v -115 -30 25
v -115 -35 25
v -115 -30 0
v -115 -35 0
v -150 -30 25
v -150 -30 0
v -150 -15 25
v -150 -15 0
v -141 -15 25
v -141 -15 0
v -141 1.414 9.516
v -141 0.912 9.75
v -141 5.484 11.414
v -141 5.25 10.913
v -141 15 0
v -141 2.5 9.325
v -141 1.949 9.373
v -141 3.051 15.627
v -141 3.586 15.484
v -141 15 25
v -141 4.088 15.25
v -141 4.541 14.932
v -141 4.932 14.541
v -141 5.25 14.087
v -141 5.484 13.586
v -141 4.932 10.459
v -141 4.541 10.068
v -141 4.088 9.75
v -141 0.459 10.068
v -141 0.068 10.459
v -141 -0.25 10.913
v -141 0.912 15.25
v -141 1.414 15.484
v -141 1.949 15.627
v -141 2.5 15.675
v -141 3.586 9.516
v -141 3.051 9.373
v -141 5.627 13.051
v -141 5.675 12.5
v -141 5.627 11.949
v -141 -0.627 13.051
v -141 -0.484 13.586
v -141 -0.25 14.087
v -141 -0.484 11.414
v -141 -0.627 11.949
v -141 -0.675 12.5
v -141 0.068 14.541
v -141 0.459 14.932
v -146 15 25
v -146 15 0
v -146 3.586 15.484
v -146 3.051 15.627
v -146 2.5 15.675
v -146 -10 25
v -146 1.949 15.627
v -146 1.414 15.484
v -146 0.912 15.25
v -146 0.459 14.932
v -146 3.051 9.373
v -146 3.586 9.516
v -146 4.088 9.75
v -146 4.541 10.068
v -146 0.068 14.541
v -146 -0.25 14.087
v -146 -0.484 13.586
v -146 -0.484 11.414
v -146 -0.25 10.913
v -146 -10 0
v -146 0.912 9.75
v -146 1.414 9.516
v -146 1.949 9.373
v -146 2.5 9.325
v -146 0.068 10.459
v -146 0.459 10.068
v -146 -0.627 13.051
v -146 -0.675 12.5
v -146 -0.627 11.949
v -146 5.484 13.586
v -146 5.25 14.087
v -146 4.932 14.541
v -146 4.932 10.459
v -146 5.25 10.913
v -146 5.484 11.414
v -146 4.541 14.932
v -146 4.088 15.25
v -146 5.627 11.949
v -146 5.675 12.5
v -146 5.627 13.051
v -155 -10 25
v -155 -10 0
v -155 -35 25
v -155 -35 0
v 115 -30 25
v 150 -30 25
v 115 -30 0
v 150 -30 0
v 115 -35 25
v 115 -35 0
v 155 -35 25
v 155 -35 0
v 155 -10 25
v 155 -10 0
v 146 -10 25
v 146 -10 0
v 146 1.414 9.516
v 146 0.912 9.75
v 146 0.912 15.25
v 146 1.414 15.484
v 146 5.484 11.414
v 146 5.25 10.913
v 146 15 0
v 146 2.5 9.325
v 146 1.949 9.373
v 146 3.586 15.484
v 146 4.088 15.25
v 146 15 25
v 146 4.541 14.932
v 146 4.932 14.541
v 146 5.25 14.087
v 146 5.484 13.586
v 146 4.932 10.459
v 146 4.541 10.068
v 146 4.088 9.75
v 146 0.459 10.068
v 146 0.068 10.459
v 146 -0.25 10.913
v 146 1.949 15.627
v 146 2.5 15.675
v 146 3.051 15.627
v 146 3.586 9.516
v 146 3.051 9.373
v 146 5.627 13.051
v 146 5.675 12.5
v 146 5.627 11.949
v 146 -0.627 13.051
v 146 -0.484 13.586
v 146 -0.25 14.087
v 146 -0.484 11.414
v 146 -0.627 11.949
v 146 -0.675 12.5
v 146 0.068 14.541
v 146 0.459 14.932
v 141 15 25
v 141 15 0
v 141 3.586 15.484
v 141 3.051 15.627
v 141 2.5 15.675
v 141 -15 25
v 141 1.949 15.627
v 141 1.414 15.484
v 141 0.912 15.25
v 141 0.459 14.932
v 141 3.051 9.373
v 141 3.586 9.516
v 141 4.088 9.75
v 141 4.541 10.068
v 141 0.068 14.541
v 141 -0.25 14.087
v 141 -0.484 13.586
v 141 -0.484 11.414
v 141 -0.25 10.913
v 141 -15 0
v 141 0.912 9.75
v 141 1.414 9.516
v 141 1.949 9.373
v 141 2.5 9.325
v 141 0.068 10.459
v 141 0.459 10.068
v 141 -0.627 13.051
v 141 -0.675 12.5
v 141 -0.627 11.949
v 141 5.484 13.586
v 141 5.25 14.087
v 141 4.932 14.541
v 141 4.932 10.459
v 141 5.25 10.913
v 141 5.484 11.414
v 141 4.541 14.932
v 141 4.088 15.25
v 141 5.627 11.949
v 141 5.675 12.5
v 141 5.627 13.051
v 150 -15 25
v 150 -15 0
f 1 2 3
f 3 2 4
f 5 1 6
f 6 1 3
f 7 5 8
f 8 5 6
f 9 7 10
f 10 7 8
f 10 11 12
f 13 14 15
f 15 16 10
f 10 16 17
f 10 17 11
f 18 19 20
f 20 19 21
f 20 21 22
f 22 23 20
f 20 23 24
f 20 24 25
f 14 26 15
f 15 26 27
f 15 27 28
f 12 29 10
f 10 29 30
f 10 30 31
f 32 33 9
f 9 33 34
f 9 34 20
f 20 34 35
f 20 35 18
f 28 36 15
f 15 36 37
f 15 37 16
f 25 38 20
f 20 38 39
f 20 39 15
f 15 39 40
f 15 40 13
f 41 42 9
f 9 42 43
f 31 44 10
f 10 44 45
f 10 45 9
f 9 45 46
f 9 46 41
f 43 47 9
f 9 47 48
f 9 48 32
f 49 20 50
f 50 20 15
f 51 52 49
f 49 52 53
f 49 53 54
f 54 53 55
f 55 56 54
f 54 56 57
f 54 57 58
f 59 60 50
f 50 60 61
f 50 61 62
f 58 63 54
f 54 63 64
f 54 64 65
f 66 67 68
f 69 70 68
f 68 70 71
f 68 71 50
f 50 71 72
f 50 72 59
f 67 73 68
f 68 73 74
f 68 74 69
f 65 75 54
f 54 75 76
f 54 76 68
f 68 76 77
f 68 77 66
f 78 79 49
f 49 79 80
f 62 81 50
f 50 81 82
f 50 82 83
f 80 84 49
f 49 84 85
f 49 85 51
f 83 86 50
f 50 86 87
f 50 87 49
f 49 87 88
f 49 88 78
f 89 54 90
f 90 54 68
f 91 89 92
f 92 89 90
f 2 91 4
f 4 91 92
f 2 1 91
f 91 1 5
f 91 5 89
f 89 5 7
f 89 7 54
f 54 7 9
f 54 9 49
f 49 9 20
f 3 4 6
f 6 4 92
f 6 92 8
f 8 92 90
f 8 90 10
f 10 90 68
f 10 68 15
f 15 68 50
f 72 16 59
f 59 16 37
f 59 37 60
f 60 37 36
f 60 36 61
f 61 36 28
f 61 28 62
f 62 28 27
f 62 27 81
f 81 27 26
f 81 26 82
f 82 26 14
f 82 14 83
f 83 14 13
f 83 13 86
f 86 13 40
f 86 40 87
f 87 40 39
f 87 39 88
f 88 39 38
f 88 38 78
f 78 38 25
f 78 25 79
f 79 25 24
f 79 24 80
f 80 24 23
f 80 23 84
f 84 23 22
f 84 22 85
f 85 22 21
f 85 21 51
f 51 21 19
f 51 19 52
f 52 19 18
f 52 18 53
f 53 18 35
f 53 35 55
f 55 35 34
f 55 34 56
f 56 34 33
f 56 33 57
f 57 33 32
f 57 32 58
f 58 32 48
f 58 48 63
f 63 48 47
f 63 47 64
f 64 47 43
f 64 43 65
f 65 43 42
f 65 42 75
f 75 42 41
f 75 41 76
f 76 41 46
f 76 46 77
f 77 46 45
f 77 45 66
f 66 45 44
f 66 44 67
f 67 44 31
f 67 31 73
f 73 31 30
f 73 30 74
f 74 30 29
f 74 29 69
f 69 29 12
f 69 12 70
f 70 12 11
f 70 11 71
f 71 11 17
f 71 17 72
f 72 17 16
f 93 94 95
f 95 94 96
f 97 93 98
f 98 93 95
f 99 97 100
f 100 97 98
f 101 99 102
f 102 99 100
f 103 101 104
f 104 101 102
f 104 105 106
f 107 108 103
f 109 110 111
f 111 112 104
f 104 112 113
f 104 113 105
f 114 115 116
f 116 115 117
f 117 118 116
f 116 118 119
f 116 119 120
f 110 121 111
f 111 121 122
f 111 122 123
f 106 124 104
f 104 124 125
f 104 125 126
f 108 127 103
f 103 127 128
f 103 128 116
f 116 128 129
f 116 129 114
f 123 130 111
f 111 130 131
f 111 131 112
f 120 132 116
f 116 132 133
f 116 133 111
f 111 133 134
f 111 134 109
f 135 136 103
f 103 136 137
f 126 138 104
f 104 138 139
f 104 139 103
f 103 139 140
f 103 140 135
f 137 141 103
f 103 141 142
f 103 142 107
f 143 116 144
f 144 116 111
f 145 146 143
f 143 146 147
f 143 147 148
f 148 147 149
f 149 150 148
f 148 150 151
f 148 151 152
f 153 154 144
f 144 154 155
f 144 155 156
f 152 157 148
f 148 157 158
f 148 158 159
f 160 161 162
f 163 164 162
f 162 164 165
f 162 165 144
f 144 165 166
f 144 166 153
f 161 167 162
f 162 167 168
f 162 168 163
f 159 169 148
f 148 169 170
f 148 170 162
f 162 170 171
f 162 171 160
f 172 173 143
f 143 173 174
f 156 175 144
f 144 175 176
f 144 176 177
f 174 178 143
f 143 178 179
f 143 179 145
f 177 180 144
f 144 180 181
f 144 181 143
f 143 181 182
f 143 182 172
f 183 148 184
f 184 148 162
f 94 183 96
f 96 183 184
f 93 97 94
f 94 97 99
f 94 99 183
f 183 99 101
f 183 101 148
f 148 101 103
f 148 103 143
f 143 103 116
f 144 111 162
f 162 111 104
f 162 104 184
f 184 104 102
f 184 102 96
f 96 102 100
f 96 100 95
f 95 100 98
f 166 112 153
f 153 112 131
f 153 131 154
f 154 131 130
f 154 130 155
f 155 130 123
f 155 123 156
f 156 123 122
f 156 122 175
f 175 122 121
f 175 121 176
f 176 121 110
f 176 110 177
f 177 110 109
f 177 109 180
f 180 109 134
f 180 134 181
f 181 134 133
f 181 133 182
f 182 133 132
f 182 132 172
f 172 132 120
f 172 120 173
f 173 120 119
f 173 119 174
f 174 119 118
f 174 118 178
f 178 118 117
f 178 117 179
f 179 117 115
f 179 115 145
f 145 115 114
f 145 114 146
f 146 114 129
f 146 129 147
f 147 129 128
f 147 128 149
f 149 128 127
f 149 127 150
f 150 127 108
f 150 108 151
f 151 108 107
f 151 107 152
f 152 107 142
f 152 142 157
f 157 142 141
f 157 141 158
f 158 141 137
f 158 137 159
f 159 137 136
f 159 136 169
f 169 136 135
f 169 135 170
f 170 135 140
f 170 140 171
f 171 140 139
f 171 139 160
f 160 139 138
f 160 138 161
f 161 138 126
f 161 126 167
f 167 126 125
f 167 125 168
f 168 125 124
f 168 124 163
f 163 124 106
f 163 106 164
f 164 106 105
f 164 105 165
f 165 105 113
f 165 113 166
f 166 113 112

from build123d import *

# Parameters (mm, degrees)
SKETCH1_W           = 4
SKETCH1_H           = 5
SKETCH1_W_2         = 5
SKETCH1_H_2         = 25
BOSS_EXTRUDE1_DEPTH = 25
SKETCH2_R           = 3.175
CUT_EXTRUDE1_DEPTH  = 302


with BuildPart() as part:
    # Sketch1 → Boss-Extrude1 (new body)
    with BuildSketch(Plane.XY):
        Polygon((-115, -35), (-115, -30), (-150, -30), (-155, -30), (-155, -35), align=None)
        Polygon((-150, -10), (-155, -10), (-155, -30), (-150, -30), (-150, -15), align=None)
        with Locations((-148, -12.5)):
            Rectangle(SKETCH1_W, SKETCH1_H)
        with Locations((-143.5, -12.5)):
            Rectangle(SKETCH1_W_2, SKETCH1_H)
        with Locations((-143.5, 2.5)):
            Rectangle(SKETCH1_W_2, SKETCH1_H_2)
        Polygon((150, -30), (115, -30), (115, -35), (155, -35), (155, -30), align=None)
        Polygon((155, -10), (155, -30), (150, -30), (150, -15), (150, -10), align=None)
        with Locations((148, -12.5)):
            Rectangle(SKETCH1_W, SKETCH1_H)
        with Locations((143.5, -12.5)):
            Rectangle(SKETCH1_W_2, SKETCH1_H)
        with Locations((143.5, 2.5)):
            Rectangle(SKETCH1_W_2, SKETCH1_H_2)
    extrude(amount=BOSS_EXTRUDE1_DEPTH)

    # Sketch2 → Cut-Extrude1 (cut, through all)
    with BuildSketch(Plane(origin=(146, 0, 0), x_dir=(0, 0, -1), z_dir=(1, 0, 0))):
        with Locations((-12.5, 2.5)):
            Circle(SKETCH2_R)
    extrude(amount=-CUT_EXTRUDE1_DEPTH, mode=Mode.SUBTRACT)


solid = part.part
